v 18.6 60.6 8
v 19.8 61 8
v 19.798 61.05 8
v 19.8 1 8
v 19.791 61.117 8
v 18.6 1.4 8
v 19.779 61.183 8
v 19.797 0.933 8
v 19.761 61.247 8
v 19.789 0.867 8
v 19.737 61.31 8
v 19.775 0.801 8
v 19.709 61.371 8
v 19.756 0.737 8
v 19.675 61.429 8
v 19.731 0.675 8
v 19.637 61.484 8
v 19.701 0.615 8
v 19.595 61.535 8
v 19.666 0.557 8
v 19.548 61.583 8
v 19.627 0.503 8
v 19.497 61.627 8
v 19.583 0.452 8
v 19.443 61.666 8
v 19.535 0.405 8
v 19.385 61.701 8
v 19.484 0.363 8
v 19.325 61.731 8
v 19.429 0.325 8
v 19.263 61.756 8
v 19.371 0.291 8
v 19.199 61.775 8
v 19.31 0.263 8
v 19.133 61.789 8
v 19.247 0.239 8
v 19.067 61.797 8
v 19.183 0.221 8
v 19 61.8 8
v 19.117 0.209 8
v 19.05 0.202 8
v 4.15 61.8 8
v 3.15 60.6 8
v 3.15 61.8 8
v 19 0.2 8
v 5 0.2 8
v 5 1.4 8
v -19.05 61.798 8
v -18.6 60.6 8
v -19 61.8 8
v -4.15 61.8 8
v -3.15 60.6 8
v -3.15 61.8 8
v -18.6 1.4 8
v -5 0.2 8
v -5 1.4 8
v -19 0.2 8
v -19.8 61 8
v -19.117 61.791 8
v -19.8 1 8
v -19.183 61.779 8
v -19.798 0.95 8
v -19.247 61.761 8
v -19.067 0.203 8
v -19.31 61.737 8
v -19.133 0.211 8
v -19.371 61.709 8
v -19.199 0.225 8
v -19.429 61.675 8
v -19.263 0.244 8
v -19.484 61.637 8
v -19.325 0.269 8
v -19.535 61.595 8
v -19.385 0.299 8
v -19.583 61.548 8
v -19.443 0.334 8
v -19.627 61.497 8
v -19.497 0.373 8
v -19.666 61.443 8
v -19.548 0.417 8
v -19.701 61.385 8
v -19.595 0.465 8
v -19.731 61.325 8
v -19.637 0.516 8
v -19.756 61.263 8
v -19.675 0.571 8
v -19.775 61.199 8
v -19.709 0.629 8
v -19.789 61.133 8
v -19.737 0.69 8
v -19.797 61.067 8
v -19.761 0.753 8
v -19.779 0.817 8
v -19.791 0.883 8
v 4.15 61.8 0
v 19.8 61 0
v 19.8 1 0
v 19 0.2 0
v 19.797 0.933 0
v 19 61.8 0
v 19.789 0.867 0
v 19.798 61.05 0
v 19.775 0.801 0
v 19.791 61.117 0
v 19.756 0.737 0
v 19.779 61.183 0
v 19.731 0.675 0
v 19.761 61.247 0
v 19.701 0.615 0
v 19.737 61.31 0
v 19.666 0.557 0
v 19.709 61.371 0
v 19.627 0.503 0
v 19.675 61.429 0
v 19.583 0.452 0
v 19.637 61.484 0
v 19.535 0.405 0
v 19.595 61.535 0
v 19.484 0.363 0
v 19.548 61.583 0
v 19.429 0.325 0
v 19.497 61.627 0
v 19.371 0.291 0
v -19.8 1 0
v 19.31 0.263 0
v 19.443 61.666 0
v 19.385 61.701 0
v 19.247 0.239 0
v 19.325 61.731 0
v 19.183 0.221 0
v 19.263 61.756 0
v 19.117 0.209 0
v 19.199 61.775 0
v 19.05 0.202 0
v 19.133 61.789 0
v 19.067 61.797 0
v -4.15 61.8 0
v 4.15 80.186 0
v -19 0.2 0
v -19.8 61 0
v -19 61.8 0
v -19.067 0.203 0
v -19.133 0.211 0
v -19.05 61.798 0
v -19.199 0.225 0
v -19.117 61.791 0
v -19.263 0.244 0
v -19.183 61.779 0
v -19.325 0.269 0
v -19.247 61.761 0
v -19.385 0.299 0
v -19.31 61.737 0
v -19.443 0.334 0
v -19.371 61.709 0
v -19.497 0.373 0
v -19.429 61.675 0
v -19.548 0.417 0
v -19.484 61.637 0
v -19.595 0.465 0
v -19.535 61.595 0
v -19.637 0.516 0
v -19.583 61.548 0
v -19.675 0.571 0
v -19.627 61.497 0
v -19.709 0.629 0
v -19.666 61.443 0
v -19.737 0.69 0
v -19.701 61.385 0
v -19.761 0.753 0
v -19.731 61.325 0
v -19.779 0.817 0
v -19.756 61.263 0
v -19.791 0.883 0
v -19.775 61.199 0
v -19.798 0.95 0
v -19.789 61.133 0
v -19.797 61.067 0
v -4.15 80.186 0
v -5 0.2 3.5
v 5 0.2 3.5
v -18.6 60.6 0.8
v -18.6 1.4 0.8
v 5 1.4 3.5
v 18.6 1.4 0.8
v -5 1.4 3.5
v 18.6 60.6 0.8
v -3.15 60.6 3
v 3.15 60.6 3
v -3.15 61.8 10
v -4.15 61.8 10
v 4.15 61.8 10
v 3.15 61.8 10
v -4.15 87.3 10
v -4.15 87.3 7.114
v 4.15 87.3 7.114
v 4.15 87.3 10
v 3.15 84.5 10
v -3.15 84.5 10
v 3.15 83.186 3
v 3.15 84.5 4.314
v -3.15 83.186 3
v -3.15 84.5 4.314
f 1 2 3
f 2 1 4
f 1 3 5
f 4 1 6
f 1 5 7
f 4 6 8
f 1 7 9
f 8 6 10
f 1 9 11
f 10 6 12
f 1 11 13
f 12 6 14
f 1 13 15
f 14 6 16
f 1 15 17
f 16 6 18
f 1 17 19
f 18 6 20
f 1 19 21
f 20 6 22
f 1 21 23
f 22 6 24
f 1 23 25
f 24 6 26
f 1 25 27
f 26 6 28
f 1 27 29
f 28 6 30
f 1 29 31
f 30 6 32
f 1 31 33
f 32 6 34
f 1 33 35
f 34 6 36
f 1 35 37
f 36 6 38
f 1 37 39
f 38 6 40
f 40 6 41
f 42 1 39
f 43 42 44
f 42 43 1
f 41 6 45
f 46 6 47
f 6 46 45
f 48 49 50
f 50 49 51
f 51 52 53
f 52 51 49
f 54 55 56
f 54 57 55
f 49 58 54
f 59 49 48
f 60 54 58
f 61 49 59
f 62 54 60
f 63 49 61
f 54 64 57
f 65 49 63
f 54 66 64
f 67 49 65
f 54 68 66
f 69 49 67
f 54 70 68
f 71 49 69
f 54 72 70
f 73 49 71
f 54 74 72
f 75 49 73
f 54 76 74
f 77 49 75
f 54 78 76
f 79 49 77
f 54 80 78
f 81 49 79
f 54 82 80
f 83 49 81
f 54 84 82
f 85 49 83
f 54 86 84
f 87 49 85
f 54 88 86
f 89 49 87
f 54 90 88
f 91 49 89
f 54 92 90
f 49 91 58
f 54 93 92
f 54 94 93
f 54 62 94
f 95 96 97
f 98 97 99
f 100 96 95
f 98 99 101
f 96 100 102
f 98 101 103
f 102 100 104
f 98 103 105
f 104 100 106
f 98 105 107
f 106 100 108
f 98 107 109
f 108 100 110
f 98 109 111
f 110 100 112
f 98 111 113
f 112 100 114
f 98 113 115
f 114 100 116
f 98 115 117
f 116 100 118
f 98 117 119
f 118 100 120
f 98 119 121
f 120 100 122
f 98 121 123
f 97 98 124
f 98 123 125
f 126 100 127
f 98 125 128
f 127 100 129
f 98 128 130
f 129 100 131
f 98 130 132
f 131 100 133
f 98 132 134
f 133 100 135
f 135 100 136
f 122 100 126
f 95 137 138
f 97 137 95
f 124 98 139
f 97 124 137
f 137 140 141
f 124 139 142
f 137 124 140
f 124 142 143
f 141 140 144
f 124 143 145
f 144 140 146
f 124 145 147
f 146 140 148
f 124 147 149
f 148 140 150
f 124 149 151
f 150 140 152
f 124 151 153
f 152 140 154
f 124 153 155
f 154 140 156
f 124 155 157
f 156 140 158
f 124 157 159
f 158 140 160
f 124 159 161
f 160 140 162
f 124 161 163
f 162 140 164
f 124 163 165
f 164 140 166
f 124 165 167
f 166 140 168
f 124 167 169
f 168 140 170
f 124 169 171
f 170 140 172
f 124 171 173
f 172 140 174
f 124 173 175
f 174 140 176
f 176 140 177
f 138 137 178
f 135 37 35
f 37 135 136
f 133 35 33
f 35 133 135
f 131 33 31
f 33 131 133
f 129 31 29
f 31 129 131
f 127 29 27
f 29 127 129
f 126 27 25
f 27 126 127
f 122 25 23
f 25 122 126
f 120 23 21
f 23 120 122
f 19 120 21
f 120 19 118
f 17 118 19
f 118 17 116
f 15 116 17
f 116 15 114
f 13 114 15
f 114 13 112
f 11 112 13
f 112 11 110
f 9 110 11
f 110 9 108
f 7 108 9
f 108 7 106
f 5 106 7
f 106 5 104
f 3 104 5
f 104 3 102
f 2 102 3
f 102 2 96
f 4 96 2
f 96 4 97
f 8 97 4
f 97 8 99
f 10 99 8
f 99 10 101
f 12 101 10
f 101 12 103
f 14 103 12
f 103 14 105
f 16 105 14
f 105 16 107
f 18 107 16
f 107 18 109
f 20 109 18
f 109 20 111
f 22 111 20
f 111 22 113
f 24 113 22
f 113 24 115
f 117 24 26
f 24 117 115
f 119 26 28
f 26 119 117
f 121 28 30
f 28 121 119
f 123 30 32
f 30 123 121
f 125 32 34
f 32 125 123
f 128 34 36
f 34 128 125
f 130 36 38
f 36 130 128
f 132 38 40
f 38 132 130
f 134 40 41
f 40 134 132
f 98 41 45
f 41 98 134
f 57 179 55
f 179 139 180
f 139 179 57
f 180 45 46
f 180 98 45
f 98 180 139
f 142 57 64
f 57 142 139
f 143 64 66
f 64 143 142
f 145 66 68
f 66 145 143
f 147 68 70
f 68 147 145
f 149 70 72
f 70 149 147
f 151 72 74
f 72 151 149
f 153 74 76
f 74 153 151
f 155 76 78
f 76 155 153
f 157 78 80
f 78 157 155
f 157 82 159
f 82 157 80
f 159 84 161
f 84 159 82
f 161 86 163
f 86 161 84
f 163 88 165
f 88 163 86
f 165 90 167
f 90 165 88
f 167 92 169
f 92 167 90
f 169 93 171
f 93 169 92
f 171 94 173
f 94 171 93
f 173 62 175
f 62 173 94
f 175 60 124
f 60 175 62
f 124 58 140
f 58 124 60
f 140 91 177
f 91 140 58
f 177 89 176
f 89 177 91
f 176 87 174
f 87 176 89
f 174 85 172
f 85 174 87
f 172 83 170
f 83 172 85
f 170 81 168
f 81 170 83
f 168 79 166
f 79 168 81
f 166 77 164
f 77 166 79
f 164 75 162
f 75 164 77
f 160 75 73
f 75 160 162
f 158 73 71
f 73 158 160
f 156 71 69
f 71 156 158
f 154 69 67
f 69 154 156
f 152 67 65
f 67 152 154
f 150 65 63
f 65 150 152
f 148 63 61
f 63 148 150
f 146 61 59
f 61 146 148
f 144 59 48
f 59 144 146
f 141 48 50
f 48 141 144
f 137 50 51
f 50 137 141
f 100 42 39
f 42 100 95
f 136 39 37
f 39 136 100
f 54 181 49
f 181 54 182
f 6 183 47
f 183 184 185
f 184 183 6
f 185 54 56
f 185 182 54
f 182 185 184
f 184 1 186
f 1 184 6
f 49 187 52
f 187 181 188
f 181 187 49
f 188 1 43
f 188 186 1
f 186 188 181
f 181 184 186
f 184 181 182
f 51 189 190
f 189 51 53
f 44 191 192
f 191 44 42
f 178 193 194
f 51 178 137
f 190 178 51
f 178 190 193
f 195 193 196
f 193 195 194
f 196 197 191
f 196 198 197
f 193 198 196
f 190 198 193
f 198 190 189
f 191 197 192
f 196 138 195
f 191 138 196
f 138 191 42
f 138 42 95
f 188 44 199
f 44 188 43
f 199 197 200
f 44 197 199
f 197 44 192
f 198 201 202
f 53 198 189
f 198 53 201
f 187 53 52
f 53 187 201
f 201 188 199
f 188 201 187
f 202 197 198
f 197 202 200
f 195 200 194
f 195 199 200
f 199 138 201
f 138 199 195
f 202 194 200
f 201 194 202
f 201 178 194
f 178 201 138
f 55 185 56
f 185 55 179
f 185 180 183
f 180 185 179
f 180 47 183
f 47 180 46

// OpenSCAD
$fn=75;

BOX_W = 38;
BOX_L = 60;
BOX_H = 8.0;

WALL = 0.8;

CORNER_RADIUS = 0.8;

MIC_OUTSIDE_W=8.3;
MIC_OUTSIDE_H=10.0;

MIC_INSIDE_W=6.3;
MIC_L=25.5;

MIC_OFFSET_X = 0;
MIC_OFFSET_Y = -20.4;
MIC_OFFSET_Z = 0;

VENT_OFFSET = -4.5;
VENT_L = 19.0;
VENT_R = -19.0;

module roundedRectangle(width, length, radius) {
    difference() {
        offset(r=radius) square([width, length], center=true);
        offset(r=radius - WALL) square([width - WALL, length - WALL], center=true);
    }
}

module mainLid() {
    // sides of box
    linear_extrude(BOX_H)
    roundedRectangle(BOX_W, BOX_L, CORNER_RADIUS);
    // base of box
    translate([0, 0, BOX_H - WALL]) {
        linear_extrude(WALL) square([BOX_W, BOX_L], center=true);
    }
}

module micBox() {
        translate([MIC_OFFSET_X, MIC_OFFSET_Y, MIC_OFFSET_Z]) {
            translate([0, -10.4, 3])
            rotate([90, 0, 0])
            linear_extrude(MIC_L) square([MIC_OUTSIDE_W, MIC_OUTSIDE_H], center=true);
        }
    }
//}


module cutouts() {
    rotate([180, 0, 0]) {   // Flipping the entire object along the X axis
        translate([MIC_OFFSET_X, MIC_OFFSET_Y, MIC_OFFSET_Z]) {
            // Inside mic channel
            translate([0, -3.5, BOX_H-8])
            rotate([90, 0, 0])
            linear_extrude(MIC_L+4.1) square([MIC_INSIDE_W, MIC_OUTSIDE_H], center=true);
        }
    }
    
    // front of keel slope
    translate([-5, MIC_L+29.0, -14])
    rotate([45, 0, 0])
    //(x, z, y)
    #cube([10, 11, 8]); 
    
    // Cable exit
    translate([0, -29.0, BOX_H-9.5])
    rotate([90, 0, 0])
    linear_extrude(3.0) square([10, 6], center=true);
    

}

// put it all together
translate([0, 31, 8]) { // offset model to start on 0, 0, 0
    difference() {
        rotate([180, 0, 0]) { // Flipping the entire object along the X axis
            union() {
                mainLid();
                micBox();
            }
        }
        cutouts();
    }
}
